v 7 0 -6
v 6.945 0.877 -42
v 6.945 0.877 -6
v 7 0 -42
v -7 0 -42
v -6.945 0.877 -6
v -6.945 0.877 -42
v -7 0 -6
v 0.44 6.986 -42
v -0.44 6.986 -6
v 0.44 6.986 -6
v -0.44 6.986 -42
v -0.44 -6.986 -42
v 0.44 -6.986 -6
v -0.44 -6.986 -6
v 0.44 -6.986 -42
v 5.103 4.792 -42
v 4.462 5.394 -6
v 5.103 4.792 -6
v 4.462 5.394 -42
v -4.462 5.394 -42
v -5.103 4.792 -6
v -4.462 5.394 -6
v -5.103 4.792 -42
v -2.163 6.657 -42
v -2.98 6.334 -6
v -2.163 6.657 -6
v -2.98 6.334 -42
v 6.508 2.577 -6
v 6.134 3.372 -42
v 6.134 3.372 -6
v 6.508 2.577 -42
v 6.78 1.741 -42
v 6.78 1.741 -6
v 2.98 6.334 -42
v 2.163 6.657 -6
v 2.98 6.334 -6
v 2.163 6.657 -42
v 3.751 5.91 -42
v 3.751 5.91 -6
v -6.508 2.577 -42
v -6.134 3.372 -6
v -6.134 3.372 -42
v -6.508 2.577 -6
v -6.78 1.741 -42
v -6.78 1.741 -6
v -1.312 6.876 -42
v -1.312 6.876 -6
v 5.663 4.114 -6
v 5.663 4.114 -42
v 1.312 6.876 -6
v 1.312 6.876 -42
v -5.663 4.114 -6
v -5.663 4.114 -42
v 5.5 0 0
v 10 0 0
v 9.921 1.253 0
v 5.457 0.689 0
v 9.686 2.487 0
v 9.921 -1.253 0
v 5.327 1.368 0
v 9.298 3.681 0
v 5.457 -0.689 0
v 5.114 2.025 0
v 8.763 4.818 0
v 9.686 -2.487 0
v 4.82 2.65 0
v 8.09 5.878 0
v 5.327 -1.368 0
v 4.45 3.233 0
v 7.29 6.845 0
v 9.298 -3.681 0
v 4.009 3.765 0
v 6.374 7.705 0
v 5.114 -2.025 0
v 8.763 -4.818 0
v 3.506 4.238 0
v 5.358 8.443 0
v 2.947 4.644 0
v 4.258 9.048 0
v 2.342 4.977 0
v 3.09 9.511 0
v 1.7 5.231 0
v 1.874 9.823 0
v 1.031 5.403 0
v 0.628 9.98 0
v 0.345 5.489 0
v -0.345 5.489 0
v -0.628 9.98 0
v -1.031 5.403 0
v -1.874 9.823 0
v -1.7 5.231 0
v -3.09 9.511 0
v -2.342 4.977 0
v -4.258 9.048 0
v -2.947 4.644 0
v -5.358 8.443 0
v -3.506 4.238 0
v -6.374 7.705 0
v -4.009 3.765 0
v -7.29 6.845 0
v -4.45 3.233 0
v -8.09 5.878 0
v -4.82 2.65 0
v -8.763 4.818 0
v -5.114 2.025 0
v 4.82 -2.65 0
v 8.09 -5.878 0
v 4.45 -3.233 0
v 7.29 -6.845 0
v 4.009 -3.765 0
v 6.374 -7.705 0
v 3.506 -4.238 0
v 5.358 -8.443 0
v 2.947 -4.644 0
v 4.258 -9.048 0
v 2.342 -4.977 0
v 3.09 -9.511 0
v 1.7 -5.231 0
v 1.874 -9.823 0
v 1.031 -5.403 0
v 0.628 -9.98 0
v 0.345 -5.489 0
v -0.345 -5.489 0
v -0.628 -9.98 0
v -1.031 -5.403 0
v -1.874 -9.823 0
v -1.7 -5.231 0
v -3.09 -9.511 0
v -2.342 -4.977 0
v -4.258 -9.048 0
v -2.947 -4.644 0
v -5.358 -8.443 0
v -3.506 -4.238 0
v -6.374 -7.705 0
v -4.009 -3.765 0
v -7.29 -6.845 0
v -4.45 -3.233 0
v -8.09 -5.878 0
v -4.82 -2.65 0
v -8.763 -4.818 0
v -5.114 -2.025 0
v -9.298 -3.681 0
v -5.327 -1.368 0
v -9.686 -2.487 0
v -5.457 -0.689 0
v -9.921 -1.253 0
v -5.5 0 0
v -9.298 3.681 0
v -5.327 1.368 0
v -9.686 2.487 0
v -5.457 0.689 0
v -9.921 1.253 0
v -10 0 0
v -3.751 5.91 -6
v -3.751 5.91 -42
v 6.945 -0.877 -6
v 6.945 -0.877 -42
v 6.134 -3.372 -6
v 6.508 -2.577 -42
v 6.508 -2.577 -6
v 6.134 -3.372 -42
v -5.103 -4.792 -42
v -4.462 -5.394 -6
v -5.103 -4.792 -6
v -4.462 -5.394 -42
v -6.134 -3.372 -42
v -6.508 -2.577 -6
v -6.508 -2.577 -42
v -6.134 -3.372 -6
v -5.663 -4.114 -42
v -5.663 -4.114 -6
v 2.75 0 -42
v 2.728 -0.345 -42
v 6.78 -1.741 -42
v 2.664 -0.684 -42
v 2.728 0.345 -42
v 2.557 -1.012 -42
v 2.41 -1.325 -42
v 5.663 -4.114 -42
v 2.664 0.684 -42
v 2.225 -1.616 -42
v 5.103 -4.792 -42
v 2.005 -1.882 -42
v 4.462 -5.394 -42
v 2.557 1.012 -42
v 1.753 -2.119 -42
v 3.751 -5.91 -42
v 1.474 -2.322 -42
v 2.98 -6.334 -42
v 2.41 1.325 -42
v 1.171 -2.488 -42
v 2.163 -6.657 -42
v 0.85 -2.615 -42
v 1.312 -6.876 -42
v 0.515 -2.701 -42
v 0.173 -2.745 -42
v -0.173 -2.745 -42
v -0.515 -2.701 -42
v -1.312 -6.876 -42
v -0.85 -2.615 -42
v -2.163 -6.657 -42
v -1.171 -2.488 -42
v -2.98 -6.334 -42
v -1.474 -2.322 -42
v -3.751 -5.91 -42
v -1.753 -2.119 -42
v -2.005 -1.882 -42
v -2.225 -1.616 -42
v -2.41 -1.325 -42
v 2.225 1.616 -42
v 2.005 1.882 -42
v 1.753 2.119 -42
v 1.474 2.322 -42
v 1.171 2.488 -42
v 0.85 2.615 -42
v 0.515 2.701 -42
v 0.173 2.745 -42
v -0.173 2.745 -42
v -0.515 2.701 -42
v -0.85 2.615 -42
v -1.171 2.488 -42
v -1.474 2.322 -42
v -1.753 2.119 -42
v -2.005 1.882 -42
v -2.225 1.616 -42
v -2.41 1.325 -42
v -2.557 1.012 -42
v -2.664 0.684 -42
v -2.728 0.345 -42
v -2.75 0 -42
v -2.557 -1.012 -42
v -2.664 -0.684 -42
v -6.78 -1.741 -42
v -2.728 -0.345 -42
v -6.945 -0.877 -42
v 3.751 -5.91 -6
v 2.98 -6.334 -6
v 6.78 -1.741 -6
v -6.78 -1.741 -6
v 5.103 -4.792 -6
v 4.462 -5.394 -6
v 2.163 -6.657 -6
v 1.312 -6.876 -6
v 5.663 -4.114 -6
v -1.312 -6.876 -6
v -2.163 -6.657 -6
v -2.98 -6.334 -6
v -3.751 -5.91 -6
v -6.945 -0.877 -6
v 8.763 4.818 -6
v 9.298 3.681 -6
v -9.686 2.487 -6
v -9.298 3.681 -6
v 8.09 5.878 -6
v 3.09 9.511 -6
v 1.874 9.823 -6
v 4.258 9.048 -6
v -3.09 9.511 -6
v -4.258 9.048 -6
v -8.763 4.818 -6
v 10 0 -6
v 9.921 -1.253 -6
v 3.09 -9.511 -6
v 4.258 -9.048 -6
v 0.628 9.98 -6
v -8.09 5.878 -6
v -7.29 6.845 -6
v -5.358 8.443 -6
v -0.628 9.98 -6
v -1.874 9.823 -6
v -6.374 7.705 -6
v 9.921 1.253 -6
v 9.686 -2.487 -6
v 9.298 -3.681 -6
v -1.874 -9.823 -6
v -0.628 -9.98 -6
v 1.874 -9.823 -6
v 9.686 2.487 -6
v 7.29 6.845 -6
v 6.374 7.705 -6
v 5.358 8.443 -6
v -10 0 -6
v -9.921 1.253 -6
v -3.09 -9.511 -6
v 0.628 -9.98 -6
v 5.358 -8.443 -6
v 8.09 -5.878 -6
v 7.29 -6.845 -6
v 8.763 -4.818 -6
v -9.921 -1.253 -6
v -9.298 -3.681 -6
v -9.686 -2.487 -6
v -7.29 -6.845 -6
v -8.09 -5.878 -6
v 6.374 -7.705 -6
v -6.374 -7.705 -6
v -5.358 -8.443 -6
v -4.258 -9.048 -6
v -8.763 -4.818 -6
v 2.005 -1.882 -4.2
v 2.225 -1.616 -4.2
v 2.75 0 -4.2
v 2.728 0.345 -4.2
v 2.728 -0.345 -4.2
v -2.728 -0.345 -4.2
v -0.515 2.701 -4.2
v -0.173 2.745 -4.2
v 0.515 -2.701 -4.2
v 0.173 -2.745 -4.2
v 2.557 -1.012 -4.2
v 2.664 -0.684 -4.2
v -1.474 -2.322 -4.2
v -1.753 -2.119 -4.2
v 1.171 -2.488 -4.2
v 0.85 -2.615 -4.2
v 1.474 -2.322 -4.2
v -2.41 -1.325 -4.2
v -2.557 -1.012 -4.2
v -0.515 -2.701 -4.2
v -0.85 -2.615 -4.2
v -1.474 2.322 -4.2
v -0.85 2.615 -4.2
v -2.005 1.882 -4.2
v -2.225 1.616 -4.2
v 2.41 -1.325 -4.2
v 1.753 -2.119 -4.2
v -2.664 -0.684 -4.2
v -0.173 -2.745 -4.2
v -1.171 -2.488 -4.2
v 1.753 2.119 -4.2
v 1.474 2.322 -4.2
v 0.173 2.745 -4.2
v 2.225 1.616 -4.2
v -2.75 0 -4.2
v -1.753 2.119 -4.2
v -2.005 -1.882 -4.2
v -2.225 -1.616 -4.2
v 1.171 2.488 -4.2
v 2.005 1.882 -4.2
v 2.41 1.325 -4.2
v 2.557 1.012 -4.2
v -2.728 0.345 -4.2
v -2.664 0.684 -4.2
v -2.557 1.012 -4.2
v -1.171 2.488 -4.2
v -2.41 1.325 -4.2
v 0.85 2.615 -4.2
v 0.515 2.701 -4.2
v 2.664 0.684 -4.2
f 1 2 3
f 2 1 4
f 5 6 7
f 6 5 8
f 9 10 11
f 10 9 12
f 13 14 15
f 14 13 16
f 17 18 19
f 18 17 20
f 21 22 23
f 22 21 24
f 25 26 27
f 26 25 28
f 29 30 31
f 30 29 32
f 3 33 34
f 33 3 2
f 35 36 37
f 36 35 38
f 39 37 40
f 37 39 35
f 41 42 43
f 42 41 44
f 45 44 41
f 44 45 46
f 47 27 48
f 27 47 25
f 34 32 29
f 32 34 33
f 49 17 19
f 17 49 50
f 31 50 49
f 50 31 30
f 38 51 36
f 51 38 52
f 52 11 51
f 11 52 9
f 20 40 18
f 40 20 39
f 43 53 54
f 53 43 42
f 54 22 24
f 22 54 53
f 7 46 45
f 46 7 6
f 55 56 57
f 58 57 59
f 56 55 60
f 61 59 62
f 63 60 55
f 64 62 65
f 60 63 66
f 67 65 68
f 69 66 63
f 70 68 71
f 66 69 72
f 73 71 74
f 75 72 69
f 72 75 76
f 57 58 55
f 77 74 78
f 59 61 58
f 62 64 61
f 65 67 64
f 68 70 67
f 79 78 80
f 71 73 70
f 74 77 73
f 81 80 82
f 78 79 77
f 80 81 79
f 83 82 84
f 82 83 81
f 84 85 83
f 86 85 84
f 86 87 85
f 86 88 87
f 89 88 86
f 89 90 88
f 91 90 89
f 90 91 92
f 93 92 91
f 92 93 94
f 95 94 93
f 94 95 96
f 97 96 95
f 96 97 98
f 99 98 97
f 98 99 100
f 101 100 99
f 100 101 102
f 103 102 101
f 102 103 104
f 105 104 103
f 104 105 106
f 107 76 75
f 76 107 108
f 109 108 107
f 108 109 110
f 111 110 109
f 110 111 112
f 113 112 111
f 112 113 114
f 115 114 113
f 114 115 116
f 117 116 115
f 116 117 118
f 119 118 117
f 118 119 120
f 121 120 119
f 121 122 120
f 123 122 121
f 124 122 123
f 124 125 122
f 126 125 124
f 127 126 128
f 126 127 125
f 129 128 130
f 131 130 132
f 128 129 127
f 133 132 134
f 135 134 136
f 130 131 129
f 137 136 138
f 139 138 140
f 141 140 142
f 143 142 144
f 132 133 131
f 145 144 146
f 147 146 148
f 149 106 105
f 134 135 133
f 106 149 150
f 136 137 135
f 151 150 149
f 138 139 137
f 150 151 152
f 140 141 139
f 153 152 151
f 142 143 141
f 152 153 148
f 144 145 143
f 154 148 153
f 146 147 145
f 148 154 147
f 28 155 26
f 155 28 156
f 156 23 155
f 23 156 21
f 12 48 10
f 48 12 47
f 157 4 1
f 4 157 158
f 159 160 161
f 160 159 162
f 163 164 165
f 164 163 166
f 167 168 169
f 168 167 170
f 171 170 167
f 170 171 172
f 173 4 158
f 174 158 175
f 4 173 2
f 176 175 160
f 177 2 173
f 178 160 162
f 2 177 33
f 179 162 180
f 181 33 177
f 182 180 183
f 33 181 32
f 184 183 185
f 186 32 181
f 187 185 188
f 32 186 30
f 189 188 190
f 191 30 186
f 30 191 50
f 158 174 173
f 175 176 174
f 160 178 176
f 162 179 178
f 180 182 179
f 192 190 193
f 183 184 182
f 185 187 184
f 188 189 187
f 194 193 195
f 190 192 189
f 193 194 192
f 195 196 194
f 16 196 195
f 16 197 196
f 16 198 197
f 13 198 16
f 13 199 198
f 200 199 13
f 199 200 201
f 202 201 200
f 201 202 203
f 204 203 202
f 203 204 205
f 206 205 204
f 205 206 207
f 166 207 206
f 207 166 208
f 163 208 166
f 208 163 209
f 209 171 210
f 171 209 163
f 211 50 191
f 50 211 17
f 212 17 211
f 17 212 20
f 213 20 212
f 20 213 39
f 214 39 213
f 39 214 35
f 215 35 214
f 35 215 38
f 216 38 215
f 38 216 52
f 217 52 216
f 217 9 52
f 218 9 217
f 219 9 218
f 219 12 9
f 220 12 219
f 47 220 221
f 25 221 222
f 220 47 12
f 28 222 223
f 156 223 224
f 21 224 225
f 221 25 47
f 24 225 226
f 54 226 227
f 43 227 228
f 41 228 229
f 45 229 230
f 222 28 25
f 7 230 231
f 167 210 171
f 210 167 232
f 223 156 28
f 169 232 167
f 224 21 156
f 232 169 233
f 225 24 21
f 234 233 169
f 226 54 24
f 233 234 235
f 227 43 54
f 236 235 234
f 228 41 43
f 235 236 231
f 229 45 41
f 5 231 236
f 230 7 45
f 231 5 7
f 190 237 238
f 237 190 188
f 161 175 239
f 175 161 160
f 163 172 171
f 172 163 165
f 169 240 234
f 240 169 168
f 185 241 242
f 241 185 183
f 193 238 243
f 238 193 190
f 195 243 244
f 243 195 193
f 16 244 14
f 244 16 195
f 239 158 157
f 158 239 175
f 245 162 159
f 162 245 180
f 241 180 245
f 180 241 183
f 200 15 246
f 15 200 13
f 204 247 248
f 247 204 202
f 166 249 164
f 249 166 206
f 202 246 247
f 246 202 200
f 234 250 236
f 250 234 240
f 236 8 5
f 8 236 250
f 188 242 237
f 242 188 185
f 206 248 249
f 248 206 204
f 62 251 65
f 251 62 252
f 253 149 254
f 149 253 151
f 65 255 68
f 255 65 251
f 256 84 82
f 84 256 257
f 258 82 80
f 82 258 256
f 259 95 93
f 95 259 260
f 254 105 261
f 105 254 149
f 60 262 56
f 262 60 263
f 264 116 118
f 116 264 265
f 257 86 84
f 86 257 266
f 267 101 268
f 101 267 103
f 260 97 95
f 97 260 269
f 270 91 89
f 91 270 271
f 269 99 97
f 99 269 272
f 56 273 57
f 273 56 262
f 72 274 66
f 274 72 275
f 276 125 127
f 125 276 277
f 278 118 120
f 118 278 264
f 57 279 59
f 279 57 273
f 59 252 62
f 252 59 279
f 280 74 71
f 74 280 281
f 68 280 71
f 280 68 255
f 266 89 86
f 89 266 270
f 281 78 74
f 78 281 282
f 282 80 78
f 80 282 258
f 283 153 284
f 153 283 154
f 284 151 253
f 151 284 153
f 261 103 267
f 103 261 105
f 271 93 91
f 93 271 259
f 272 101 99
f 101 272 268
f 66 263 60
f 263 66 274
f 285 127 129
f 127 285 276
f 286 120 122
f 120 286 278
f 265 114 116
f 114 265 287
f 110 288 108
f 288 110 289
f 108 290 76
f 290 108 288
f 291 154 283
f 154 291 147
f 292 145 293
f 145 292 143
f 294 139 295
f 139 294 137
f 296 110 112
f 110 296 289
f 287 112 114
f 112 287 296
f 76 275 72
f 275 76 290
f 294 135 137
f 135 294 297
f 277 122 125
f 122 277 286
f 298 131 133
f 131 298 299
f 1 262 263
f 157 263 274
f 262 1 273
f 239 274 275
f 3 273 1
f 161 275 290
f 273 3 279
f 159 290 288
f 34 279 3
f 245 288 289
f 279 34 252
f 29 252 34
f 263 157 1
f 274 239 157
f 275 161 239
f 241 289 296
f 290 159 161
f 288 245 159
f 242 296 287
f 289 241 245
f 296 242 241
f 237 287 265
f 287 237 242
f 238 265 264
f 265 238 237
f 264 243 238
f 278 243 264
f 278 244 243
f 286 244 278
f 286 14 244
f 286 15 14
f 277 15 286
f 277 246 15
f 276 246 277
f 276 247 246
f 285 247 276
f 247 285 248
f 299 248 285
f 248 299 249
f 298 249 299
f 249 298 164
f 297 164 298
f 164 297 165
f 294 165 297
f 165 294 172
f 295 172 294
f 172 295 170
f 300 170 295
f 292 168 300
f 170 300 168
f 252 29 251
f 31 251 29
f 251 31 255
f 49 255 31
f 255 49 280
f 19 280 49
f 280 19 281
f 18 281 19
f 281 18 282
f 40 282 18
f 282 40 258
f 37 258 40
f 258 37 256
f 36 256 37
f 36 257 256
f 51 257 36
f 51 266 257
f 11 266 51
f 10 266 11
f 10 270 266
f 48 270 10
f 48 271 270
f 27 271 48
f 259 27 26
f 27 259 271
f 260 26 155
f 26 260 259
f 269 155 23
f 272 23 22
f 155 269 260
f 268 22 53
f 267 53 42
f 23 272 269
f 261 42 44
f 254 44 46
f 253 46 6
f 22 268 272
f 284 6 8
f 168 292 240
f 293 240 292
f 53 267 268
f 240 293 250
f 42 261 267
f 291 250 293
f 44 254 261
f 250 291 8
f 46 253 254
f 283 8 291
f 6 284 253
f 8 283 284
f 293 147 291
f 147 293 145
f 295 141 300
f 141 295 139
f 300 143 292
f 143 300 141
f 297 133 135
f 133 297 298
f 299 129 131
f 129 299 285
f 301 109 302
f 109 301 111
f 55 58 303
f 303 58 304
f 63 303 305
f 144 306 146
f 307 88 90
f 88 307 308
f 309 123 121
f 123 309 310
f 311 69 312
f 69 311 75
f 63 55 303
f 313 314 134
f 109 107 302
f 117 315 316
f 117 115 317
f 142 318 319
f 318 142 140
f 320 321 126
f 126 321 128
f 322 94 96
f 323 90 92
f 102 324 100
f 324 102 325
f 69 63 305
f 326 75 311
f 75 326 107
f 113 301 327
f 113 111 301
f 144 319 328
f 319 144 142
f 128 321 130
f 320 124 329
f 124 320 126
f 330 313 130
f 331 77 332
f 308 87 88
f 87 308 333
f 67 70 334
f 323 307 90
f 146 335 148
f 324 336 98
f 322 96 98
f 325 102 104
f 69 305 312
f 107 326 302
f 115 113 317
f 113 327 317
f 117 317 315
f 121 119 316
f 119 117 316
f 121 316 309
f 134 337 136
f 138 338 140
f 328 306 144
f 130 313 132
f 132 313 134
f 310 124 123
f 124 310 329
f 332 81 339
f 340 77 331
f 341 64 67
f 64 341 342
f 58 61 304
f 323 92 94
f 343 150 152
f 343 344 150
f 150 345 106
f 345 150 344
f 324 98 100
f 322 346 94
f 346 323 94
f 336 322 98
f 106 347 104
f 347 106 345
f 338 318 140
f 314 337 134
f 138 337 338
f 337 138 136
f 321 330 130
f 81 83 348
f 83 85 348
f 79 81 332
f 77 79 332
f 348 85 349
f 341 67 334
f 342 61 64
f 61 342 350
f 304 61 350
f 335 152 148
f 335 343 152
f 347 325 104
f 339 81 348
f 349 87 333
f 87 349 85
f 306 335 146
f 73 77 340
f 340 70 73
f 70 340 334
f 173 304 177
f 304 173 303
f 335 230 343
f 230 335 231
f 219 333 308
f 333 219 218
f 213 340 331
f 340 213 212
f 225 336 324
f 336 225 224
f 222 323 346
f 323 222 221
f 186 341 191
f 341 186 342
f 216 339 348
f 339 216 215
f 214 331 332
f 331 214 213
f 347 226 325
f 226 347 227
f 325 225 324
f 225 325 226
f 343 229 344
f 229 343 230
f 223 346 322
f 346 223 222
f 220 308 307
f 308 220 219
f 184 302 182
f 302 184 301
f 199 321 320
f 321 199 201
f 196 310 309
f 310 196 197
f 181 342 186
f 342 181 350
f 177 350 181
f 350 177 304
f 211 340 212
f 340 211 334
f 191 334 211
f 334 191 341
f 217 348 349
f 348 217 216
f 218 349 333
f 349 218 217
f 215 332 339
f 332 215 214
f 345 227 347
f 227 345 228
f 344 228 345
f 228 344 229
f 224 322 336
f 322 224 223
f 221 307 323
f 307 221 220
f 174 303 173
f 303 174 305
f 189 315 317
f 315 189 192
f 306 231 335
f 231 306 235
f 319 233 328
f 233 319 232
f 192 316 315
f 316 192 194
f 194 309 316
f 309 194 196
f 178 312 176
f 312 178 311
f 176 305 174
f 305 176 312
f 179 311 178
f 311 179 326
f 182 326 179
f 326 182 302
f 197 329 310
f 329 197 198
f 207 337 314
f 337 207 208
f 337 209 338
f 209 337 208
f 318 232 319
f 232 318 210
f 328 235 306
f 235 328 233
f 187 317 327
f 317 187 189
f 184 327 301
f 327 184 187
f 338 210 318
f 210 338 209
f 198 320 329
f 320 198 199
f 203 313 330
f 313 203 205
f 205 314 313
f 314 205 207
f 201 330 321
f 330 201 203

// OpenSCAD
$fn = 50;


difference() {
	union() {
		translate(v = [0, 0, -42.0000000000]) {
			cylinder(h = 42, r = 7.0000000000);
		}
		translate(v = [0, 0, -6.0000000000]) {
			cylinder(h = 6, r = 10.0000000000);
		}
	}
	union() {
		translate(v = [0, 0, 0]) {
			rotate(a = [0, 0, 0]) {
				difference() {
					union() {
						#translate(v = [0, 0, -42.0000000000]) {
							cylinder(h = 42, r = 2.2500000000);
						}
						#translate(v = [0, 0, -4.2000000000]) {
							cylinder(h = 4.2000000000, r = 7.0000000000, r1 = 2.7500000000, r2 = 5.5000000000);
						}
						#translate(v = [0, 0, -42.0000000000]) {
							cylinder(h = 42, r = 2.7500000000);
						}
						#translate(v = [0, 0, -42.0000000000]) {
							cylinder(h = 42, r = 2.2500000000);
						}
					}
					union();
				}
			}
		}
	}
}
